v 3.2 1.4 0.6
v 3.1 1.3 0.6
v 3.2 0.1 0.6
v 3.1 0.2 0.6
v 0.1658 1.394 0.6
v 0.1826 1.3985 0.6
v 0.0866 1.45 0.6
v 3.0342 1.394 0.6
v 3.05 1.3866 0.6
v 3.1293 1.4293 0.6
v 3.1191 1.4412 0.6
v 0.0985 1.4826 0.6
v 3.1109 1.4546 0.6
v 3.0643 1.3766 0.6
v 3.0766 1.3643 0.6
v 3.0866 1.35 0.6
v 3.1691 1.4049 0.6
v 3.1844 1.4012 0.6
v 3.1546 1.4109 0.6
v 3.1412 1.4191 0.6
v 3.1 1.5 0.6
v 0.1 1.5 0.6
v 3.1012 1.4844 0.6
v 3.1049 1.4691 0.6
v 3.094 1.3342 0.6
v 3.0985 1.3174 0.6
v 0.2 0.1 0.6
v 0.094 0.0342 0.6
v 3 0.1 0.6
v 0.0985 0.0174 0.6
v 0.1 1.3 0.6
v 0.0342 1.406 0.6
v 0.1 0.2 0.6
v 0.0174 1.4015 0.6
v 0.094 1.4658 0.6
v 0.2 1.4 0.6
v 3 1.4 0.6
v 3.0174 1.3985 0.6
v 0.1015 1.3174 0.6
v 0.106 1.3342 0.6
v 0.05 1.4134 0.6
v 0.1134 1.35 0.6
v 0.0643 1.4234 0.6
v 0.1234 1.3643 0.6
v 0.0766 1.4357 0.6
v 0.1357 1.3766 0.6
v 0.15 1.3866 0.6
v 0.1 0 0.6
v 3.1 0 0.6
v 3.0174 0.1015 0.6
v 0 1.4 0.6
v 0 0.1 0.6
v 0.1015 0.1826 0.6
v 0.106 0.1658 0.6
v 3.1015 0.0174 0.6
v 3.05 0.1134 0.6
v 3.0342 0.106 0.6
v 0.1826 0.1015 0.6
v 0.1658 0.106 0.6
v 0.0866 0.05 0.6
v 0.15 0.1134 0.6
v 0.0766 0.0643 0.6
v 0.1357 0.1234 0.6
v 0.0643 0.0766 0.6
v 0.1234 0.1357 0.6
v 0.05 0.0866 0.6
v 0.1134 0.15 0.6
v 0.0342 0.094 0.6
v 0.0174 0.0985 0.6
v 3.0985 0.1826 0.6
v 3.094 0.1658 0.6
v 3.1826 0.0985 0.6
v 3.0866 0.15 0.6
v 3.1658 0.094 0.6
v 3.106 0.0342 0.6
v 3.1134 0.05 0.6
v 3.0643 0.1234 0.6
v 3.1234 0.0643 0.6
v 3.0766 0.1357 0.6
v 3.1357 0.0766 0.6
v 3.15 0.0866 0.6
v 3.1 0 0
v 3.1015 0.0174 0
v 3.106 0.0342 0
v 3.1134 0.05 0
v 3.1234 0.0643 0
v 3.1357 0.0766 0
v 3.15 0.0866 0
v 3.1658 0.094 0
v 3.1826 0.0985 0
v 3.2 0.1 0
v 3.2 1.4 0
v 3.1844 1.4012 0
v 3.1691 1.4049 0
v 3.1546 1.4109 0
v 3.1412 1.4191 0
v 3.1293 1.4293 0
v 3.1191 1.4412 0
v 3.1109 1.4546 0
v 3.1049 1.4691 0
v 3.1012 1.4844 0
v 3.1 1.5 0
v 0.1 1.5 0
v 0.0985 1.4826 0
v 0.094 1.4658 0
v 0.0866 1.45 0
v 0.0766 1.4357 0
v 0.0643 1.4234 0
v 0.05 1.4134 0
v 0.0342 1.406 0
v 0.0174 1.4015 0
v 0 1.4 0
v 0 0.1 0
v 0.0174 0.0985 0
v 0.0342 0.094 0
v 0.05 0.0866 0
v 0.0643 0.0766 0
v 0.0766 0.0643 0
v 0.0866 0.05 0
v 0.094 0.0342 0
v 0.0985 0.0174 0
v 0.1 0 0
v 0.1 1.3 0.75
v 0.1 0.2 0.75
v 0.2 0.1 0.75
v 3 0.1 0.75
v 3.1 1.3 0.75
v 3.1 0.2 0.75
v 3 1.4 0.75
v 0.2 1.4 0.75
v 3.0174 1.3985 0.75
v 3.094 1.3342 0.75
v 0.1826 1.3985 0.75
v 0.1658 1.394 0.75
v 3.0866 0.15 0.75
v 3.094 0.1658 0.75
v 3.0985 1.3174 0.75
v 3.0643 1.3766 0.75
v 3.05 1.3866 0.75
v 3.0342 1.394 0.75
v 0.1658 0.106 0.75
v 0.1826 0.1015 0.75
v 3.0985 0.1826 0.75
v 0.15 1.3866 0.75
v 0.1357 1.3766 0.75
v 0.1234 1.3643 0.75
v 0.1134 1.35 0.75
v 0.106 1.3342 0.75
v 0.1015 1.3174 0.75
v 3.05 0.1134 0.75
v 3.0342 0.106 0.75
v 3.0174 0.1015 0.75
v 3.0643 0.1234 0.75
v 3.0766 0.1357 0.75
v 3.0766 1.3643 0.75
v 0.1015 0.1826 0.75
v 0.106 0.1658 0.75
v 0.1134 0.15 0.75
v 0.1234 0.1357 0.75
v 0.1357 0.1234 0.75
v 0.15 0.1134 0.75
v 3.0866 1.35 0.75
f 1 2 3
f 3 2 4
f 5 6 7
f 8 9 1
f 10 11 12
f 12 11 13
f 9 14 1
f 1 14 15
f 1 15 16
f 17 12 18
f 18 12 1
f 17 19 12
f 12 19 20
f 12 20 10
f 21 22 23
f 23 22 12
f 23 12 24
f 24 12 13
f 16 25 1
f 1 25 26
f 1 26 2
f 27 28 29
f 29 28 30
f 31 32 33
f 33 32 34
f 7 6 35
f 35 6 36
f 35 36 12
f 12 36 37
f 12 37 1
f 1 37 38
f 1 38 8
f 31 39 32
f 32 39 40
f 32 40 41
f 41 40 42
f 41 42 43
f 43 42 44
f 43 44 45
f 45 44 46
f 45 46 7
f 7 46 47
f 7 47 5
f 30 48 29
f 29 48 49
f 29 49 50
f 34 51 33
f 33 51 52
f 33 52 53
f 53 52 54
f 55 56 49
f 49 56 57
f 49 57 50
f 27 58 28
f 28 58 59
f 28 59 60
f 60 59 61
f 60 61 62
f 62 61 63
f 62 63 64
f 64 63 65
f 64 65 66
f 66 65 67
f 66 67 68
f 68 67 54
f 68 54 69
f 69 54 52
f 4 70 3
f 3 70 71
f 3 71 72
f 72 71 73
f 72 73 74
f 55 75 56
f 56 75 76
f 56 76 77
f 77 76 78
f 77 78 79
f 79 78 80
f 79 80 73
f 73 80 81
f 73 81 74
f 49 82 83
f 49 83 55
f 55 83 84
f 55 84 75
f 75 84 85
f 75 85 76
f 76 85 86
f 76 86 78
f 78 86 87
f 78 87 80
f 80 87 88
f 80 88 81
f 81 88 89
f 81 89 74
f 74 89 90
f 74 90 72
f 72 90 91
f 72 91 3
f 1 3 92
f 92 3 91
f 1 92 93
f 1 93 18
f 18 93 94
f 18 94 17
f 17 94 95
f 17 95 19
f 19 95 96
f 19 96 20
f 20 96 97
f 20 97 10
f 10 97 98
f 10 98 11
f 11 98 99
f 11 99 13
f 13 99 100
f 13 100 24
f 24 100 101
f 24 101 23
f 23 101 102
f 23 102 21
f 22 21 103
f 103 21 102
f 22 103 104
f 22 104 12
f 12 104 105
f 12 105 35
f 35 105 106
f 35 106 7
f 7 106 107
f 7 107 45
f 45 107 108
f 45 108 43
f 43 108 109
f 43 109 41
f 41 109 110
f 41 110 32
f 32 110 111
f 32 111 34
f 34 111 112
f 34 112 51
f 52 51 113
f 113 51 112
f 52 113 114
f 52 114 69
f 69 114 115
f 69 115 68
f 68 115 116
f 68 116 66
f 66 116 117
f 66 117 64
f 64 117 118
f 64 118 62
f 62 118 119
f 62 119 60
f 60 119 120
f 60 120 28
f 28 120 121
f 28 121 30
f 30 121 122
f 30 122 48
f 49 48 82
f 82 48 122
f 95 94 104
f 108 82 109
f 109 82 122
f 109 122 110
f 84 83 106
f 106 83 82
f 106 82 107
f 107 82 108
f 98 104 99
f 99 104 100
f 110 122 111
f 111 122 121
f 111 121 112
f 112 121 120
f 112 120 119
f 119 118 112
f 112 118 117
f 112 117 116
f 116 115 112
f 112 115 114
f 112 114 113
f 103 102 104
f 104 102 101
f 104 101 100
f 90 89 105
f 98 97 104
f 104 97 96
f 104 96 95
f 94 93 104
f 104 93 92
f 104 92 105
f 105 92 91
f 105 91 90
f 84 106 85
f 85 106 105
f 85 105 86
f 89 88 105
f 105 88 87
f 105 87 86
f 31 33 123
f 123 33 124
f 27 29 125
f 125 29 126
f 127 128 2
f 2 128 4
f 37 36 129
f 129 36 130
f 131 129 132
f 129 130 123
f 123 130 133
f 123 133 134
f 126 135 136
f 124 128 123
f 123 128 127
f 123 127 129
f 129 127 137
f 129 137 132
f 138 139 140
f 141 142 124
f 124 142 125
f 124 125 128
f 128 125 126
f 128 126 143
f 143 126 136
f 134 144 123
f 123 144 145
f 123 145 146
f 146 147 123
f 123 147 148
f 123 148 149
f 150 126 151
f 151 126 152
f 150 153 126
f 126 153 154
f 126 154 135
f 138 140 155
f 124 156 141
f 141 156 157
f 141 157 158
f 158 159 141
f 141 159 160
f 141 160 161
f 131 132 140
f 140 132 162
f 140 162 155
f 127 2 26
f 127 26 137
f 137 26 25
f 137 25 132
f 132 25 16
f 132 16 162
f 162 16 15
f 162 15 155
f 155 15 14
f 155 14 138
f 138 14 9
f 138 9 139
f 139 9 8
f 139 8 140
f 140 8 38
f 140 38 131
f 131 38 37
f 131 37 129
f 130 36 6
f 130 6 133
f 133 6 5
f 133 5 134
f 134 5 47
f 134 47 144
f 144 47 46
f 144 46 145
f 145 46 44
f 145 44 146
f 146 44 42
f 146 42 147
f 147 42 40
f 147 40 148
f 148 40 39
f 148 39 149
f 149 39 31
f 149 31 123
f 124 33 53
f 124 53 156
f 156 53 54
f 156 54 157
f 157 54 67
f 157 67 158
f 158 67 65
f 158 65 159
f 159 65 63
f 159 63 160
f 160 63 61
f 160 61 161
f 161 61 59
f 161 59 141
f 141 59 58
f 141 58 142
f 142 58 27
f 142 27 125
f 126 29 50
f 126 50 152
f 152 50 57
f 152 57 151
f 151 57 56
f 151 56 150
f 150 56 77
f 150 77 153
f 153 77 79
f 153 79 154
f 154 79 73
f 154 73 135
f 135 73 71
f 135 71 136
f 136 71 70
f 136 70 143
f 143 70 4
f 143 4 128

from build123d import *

# Parameters (mm, degrees)
BOSS_EXTRUDE1_DEPTH = 0.6
SKETCH2_W           = 3
SKETCH2_H           = 1.3
BOSS_EXTRUDE2_DEPTH = 0.15
FILLET1_R           = 0.1


with BuildPart() as part:
    # Sketch1 → Boss-Extrude1 (new body)
    with BuildSketch(Plane.XY):
        with BuildLine():
            Line((0.099997141, 0), (3.100008577, 0))
            ThreePointArc((3.100008577, 0), (3.129296051, 0.070707646), (3.200002859, 0.099997141))
            Line((3.200002859, 0.099997141), (3.200002859, 1.400002859))
            ThreePointArc((3.200002859, 1.400002859), (3.129292354, 1.429290333), (3.100002859, 1.5))
            Line((3.100002859, 1.5), (0.100002859, 1.5))
            ThreePointArc((0.100002859, 1.5), (0.0707127, 1.4292873), (0, 1.399997141))
            Line((0, 1.399997141), (0, 0.099997141))
            ThreePointArc((0, 0.099997141), (0.070708656, 0.070708656), (0.099997141, 0))
        make_face()
    extrude(amount=BOSS_EXTRUDE1_DEPTH)

    # Sketch2 → Boss-Extrude2 (add)
    with BuildSketch(Plane.XY.offset(0.6)):
        with Locations((1.600002859, 0.749997141)):
            Rectangle(SKETCH2_W, SKETCH2_H)
    extrude(amount=BOSS_EXTRUDE2_DEPTH)

    # Fillet1
    fillet1_edges = [part.edges().sort_by_distance(p)[0] for p in [
        (0.100002859, 1.399997141, 0.675),
        (0.100002859, 0.099997141, 0.675),
        (3.100002859, 0.099997141, 0.675),
        (3.100002859, 1.399997141, 0.675),
    ]]
    fillet(fillet1_edges, radius=FILLET1_R)


solid = part.part
